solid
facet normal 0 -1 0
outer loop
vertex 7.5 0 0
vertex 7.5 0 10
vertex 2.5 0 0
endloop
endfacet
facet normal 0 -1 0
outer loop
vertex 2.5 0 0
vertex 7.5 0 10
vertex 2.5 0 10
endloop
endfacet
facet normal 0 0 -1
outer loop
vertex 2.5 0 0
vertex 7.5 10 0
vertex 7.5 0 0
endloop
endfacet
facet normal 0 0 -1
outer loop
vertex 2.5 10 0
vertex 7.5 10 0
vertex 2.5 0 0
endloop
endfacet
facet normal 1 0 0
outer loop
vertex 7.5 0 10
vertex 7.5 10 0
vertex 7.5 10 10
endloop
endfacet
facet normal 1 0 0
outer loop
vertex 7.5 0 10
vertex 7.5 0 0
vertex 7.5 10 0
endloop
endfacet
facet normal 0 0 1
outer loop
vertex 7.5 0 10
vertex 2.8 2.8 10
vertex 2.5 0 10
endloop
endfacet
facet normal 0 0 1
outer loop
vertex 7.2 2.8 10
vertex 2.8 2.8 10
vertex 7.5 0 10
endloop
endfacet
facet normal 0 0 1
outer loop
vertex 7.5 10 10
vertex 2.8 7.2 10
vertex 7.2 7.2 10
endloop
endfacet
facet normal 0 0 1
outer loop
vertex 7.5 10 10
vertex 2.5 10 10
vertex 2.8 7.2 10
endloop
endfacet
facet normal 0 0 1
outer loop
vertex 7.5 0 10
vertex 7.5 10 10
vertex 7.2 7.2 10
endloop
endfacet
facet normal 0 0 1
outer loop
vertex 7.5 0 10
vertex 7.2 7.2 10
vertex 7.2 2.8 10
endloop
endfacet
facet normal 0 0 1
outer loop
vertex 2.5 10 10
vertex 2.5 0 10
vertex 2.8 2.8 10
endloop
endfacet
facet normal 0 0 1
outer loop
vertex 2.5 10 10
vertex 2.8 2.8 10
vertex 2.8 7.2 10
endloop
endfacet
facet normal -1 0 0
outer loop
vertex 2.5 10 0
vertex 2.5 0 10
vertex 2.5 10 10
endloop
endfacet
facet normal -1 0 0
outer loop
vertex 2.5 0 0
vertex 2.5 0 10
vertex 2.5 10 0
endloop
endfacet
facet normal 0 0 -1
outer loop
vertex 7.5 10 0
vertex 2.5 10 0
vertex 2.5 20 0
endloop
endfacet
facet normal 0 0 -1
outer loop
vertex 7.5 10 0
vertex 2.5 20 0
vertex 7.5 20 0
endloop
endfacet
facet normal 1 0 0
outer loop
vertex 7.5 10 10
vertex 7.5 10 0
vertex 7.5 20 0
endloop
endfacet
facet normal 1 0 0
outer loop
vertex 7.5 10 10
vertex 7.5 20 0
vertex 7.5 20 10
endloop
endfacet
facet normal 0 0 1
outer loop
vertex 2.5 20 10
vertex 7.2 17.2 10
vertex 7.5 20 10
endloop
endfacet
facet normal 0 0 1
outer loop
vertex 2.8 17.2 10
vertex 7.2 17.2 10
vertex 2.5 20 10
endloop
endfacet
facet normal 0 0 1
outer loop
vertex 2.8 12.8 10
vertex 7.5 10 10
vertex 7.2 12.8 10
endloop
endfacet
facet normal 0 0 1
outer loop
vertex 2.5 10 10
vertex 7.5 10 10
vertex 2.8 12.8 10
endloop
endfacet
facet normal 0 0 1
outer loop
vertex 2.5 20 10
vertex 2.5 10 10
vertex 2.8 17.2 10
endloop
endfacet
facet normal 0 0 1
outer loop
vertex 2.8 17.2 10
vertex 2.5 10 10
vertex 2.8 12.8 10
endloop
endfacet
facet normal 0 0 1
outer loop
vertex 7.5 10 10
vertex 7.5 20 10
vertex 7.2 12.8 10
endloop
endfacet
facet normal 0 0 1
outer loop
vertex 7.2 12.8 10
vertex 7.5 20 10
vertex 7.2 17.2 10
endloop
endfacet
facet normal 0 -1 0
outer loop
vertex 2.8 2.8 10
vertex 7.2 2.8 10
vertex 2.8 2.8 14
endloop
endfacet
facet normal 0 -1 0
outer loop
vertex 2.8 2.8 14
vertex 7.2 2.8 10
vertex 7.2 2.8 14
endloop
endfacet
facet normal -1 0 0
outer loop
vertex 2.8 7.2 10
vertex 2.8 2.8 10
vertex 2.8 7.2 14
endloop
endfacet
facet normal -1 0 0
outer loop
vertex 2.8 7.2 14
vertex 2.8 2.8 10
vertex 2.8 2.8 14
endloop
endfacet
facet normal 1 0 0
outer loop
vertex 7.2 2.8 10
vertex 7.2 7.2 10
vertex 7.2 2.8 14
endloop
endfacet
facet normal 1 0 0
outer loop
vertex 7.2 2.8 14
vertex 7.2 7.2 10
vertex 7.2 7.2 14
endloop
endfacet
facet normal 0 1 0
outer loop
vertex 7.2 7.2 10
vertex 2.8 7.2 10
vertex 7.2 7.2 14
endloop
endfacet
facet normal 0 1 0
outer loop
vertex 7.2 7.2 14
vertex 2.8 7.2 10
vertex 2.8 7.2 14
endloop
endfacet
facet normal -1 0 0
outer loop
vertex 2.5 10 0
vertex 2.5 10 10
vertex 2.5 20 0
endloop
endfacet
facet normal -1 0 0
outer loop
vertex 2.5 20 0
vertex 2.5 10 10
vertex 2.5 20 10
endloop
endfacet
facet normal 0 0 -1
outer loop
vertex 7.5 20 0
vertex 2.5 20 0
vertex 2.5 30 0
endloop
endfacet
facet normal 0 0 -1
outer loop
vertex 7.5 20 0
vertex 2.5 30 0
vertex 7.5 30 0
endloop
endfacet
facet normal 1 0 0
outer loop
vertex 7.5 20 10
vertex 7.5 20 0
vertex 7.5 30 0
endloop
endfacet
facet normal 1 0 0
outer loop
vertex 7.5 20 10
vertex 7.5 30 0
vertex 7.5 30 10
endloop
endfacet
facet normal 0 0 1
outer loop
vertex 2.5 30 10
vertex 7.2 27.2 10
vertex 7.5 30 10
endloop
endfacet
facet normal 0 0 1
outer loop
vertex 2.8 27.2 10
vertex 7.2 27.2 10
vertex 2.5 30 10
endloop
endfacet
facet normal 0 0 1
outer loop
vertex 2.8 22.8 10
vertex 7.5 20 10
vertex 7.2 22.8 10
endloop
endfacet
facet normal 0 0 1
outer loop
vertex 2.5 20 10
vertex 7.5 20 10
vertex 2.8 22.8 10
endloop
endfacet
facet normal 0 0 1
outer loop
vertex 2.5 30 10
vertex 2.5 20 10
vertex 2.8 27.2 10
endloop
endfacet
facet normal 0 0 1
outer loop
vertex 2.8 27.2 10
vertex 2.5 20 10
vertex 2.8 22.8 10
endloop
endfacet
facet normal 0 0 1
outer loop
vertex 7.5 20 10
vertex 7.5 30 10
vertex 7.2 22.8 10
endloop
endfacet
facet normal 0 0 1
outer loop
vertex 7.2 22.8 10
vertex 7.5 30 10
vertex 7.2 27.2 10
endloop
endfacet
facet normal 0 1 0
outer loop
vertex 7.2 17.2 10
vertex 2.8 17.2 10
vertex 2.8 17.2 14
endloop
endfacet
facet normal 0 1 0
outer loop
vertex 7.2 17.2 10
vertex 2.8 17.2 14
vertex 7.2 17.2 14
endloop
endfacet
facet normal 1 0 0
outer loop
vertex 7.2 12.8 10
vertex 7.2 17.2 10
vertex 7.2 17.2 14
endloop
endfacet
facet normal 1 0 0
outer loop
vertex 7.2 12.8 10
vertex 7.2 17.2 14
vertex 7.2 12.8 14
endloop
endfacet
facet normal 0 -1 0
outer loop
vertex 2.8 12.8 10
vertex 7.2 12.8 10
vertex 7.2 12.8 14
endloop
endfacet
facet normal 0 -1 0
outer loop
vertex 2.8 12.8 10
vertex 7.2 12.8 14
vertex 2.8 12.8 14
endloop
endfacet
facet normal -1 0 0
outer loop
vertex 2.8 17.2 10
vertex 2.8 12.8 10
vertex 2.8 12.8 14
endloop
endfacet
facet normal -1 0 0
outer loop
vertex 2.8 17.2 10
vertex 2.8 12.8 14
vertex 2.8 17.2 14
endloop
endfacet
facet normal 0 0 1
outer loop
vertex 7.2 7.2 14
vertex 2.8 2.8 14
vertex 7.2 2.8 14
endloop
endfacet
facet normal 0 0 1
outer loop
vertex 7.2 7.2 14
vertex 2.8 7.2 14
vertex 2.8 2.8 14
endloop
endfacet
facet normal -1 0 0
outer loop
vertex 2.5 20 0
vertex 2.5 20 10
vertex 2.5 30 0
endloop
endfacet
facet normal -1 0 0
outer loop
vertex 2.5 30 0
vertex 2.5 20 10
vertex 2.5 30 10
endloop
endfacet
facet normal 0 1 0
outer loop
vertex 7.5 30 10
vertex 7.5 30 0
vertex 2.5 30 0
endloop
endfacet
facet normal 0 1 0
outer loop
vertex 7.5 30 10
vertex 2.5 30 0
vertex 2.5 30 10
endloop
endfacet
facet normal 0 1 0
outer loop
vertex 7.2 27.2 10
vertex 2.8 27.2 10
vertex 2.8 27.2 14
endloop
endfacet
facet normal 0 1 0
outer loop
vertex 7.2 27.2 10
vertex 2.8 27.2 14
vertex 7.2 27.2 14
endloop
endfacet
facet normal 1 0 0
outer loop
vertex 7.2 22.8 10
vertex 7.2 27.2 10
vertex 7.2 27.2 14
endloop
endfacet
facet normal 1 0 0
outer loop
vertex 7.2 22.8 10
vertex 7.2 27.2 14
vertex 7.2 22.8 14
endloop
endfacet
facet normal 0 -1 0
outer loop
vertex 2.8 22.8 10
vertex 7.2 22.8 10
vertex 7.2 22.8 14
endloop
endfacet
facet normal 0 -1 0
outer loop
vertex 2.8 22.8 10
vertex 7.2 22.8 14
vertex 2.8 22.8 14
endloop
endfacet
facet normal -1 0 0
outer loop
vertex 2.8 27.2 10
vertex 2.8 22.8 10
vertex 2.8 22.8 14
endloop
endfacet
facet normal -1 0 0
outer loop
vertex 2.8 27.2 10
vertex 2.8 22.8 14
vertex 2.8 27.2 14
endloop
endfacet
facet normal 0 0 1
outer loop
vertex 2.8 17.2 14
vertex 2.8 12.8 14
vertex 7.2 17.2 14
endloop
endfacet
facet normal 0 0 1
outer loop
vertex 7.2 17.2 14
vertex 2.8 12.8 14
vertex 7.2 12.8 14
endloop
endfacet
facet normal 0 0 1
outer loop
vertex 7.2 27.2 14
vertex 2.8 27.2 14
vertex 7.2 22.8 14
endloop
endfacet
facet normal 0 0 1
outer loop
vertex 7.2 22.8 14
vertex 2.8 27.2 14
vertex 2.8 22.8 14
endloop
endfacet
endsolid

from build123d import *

# Parameters (mm, degrees)
BOX_W             = 10
BOX_H             = 10
BOX_DEPTH         = 10
SKETCH_W          = 4.4
SKETCH_H          = 4.4
PAD_DEPTH         = 4
PAD_FACE1_W       = 10
PAD_FACE1_H       = 10
POCKET_DEPTH      = 2.5
POCKET_FACE3_W    = 10
POCKET_FACE3_H    = 10
POCKET001_DEPTH   = 2.5
POCKET001_FACE6_W = 5
POCKET001_FACE6_H = 10
PAD001_DEPTH      = 10
SKETCH001_W       = 4.4
SKETCH001_H       = 4.4
PAD002_DEPTH      = 4
PAD002_FACE14_W   = 5
PAD002_FACE14_H   = 10
PAD003_DEPTH      = 10
SKETCH002_W       = 4.4
SKETCH002_H       = 4.4
PAD004_DEPTH      = 4


with BuildPart() as part:
    # Box → Box (new body)
    with BuildSketch(Plane.XY):
        with Locations((5, 5)):
            Rectangle(BOX_W, BOX_H)
    extrude(amount=BOX_DEPTH)

    # Sketch (on Face6 of BaseFeature) → Pad (new body)
    with BuildSketch(Plane.XY.offset(10)):
        with Locations((5, 5)):
            Rectangle(SKETCH_W, SKETCH_H)
    extrude(amount=PAD_DEPTH)

    # Pad Face1 → Pocket (cut)
    with BuildSketch(Plane(origin=(0, 5, 5), x_dir=(0, 1, 0), z_dir=(-1, 0, 0))):
        Rectangle(PAD_FACE1_W, PAD_FACE1_H)
    extrude(amount=-POCKET_DEPTH, mode=Mode.SUBTRACT)

    # Pocket Face3 → Pocket001 (cut)
    with BuildSketch(Plane(origin=(10, 5, 5), x_dir=(0, -1, 0), z_dir=(1, 0, 0))):
        Rectangle(POCKET_FACE3_W, POCKET_FACE3_H)
    extrude(amount=-POCKET001_DEPTH, mode=Mode.SUBTRACT)

    # Pocket001 Face6 → Pad001 (add)
    with BuildSketch(Plane(origin=(5, 10, 5), x_dir=(1, 0, 0), z_dir=(0, 1, 0))):
        Rectangle(POCKET001_FACE6_W, POCKET001_FACE6_H)
    extrude(amount=PAD001_DEPTH)

    # Sketch001 (on Face8 of Pad001) → Pad002 (join)
    with BuildSketch(Plane.XY.offset(10)):
        with Locations((5, 15)):
            Rectangle(SKETCH001_W, SKETCH001_H)
    extrude(amount=PAD002_DEPTH)

    # Pad002 Face14 → Pad003 (add)
    with BuildSketch(Plane(origin=(5, 20, 5), x_dir=(1, 0, 0), z_dir=(0, 1, 0))):
        Rectangle(PAD002_FACE14_W, PAD002_FACE14_H)
    extrude(amount=PAD003_DEPTH)

    # Sketch002 (on Face16 of Pad003) → Pad004 (join)
    with BuildSketch(Plane.XY.offset(10)):
        with Locations((5, 25)):
            Rectangle(SKETCH002_W, SKETCH002_H)
    extrude(amount=PAD004_DEPTH)


solid = part.part
